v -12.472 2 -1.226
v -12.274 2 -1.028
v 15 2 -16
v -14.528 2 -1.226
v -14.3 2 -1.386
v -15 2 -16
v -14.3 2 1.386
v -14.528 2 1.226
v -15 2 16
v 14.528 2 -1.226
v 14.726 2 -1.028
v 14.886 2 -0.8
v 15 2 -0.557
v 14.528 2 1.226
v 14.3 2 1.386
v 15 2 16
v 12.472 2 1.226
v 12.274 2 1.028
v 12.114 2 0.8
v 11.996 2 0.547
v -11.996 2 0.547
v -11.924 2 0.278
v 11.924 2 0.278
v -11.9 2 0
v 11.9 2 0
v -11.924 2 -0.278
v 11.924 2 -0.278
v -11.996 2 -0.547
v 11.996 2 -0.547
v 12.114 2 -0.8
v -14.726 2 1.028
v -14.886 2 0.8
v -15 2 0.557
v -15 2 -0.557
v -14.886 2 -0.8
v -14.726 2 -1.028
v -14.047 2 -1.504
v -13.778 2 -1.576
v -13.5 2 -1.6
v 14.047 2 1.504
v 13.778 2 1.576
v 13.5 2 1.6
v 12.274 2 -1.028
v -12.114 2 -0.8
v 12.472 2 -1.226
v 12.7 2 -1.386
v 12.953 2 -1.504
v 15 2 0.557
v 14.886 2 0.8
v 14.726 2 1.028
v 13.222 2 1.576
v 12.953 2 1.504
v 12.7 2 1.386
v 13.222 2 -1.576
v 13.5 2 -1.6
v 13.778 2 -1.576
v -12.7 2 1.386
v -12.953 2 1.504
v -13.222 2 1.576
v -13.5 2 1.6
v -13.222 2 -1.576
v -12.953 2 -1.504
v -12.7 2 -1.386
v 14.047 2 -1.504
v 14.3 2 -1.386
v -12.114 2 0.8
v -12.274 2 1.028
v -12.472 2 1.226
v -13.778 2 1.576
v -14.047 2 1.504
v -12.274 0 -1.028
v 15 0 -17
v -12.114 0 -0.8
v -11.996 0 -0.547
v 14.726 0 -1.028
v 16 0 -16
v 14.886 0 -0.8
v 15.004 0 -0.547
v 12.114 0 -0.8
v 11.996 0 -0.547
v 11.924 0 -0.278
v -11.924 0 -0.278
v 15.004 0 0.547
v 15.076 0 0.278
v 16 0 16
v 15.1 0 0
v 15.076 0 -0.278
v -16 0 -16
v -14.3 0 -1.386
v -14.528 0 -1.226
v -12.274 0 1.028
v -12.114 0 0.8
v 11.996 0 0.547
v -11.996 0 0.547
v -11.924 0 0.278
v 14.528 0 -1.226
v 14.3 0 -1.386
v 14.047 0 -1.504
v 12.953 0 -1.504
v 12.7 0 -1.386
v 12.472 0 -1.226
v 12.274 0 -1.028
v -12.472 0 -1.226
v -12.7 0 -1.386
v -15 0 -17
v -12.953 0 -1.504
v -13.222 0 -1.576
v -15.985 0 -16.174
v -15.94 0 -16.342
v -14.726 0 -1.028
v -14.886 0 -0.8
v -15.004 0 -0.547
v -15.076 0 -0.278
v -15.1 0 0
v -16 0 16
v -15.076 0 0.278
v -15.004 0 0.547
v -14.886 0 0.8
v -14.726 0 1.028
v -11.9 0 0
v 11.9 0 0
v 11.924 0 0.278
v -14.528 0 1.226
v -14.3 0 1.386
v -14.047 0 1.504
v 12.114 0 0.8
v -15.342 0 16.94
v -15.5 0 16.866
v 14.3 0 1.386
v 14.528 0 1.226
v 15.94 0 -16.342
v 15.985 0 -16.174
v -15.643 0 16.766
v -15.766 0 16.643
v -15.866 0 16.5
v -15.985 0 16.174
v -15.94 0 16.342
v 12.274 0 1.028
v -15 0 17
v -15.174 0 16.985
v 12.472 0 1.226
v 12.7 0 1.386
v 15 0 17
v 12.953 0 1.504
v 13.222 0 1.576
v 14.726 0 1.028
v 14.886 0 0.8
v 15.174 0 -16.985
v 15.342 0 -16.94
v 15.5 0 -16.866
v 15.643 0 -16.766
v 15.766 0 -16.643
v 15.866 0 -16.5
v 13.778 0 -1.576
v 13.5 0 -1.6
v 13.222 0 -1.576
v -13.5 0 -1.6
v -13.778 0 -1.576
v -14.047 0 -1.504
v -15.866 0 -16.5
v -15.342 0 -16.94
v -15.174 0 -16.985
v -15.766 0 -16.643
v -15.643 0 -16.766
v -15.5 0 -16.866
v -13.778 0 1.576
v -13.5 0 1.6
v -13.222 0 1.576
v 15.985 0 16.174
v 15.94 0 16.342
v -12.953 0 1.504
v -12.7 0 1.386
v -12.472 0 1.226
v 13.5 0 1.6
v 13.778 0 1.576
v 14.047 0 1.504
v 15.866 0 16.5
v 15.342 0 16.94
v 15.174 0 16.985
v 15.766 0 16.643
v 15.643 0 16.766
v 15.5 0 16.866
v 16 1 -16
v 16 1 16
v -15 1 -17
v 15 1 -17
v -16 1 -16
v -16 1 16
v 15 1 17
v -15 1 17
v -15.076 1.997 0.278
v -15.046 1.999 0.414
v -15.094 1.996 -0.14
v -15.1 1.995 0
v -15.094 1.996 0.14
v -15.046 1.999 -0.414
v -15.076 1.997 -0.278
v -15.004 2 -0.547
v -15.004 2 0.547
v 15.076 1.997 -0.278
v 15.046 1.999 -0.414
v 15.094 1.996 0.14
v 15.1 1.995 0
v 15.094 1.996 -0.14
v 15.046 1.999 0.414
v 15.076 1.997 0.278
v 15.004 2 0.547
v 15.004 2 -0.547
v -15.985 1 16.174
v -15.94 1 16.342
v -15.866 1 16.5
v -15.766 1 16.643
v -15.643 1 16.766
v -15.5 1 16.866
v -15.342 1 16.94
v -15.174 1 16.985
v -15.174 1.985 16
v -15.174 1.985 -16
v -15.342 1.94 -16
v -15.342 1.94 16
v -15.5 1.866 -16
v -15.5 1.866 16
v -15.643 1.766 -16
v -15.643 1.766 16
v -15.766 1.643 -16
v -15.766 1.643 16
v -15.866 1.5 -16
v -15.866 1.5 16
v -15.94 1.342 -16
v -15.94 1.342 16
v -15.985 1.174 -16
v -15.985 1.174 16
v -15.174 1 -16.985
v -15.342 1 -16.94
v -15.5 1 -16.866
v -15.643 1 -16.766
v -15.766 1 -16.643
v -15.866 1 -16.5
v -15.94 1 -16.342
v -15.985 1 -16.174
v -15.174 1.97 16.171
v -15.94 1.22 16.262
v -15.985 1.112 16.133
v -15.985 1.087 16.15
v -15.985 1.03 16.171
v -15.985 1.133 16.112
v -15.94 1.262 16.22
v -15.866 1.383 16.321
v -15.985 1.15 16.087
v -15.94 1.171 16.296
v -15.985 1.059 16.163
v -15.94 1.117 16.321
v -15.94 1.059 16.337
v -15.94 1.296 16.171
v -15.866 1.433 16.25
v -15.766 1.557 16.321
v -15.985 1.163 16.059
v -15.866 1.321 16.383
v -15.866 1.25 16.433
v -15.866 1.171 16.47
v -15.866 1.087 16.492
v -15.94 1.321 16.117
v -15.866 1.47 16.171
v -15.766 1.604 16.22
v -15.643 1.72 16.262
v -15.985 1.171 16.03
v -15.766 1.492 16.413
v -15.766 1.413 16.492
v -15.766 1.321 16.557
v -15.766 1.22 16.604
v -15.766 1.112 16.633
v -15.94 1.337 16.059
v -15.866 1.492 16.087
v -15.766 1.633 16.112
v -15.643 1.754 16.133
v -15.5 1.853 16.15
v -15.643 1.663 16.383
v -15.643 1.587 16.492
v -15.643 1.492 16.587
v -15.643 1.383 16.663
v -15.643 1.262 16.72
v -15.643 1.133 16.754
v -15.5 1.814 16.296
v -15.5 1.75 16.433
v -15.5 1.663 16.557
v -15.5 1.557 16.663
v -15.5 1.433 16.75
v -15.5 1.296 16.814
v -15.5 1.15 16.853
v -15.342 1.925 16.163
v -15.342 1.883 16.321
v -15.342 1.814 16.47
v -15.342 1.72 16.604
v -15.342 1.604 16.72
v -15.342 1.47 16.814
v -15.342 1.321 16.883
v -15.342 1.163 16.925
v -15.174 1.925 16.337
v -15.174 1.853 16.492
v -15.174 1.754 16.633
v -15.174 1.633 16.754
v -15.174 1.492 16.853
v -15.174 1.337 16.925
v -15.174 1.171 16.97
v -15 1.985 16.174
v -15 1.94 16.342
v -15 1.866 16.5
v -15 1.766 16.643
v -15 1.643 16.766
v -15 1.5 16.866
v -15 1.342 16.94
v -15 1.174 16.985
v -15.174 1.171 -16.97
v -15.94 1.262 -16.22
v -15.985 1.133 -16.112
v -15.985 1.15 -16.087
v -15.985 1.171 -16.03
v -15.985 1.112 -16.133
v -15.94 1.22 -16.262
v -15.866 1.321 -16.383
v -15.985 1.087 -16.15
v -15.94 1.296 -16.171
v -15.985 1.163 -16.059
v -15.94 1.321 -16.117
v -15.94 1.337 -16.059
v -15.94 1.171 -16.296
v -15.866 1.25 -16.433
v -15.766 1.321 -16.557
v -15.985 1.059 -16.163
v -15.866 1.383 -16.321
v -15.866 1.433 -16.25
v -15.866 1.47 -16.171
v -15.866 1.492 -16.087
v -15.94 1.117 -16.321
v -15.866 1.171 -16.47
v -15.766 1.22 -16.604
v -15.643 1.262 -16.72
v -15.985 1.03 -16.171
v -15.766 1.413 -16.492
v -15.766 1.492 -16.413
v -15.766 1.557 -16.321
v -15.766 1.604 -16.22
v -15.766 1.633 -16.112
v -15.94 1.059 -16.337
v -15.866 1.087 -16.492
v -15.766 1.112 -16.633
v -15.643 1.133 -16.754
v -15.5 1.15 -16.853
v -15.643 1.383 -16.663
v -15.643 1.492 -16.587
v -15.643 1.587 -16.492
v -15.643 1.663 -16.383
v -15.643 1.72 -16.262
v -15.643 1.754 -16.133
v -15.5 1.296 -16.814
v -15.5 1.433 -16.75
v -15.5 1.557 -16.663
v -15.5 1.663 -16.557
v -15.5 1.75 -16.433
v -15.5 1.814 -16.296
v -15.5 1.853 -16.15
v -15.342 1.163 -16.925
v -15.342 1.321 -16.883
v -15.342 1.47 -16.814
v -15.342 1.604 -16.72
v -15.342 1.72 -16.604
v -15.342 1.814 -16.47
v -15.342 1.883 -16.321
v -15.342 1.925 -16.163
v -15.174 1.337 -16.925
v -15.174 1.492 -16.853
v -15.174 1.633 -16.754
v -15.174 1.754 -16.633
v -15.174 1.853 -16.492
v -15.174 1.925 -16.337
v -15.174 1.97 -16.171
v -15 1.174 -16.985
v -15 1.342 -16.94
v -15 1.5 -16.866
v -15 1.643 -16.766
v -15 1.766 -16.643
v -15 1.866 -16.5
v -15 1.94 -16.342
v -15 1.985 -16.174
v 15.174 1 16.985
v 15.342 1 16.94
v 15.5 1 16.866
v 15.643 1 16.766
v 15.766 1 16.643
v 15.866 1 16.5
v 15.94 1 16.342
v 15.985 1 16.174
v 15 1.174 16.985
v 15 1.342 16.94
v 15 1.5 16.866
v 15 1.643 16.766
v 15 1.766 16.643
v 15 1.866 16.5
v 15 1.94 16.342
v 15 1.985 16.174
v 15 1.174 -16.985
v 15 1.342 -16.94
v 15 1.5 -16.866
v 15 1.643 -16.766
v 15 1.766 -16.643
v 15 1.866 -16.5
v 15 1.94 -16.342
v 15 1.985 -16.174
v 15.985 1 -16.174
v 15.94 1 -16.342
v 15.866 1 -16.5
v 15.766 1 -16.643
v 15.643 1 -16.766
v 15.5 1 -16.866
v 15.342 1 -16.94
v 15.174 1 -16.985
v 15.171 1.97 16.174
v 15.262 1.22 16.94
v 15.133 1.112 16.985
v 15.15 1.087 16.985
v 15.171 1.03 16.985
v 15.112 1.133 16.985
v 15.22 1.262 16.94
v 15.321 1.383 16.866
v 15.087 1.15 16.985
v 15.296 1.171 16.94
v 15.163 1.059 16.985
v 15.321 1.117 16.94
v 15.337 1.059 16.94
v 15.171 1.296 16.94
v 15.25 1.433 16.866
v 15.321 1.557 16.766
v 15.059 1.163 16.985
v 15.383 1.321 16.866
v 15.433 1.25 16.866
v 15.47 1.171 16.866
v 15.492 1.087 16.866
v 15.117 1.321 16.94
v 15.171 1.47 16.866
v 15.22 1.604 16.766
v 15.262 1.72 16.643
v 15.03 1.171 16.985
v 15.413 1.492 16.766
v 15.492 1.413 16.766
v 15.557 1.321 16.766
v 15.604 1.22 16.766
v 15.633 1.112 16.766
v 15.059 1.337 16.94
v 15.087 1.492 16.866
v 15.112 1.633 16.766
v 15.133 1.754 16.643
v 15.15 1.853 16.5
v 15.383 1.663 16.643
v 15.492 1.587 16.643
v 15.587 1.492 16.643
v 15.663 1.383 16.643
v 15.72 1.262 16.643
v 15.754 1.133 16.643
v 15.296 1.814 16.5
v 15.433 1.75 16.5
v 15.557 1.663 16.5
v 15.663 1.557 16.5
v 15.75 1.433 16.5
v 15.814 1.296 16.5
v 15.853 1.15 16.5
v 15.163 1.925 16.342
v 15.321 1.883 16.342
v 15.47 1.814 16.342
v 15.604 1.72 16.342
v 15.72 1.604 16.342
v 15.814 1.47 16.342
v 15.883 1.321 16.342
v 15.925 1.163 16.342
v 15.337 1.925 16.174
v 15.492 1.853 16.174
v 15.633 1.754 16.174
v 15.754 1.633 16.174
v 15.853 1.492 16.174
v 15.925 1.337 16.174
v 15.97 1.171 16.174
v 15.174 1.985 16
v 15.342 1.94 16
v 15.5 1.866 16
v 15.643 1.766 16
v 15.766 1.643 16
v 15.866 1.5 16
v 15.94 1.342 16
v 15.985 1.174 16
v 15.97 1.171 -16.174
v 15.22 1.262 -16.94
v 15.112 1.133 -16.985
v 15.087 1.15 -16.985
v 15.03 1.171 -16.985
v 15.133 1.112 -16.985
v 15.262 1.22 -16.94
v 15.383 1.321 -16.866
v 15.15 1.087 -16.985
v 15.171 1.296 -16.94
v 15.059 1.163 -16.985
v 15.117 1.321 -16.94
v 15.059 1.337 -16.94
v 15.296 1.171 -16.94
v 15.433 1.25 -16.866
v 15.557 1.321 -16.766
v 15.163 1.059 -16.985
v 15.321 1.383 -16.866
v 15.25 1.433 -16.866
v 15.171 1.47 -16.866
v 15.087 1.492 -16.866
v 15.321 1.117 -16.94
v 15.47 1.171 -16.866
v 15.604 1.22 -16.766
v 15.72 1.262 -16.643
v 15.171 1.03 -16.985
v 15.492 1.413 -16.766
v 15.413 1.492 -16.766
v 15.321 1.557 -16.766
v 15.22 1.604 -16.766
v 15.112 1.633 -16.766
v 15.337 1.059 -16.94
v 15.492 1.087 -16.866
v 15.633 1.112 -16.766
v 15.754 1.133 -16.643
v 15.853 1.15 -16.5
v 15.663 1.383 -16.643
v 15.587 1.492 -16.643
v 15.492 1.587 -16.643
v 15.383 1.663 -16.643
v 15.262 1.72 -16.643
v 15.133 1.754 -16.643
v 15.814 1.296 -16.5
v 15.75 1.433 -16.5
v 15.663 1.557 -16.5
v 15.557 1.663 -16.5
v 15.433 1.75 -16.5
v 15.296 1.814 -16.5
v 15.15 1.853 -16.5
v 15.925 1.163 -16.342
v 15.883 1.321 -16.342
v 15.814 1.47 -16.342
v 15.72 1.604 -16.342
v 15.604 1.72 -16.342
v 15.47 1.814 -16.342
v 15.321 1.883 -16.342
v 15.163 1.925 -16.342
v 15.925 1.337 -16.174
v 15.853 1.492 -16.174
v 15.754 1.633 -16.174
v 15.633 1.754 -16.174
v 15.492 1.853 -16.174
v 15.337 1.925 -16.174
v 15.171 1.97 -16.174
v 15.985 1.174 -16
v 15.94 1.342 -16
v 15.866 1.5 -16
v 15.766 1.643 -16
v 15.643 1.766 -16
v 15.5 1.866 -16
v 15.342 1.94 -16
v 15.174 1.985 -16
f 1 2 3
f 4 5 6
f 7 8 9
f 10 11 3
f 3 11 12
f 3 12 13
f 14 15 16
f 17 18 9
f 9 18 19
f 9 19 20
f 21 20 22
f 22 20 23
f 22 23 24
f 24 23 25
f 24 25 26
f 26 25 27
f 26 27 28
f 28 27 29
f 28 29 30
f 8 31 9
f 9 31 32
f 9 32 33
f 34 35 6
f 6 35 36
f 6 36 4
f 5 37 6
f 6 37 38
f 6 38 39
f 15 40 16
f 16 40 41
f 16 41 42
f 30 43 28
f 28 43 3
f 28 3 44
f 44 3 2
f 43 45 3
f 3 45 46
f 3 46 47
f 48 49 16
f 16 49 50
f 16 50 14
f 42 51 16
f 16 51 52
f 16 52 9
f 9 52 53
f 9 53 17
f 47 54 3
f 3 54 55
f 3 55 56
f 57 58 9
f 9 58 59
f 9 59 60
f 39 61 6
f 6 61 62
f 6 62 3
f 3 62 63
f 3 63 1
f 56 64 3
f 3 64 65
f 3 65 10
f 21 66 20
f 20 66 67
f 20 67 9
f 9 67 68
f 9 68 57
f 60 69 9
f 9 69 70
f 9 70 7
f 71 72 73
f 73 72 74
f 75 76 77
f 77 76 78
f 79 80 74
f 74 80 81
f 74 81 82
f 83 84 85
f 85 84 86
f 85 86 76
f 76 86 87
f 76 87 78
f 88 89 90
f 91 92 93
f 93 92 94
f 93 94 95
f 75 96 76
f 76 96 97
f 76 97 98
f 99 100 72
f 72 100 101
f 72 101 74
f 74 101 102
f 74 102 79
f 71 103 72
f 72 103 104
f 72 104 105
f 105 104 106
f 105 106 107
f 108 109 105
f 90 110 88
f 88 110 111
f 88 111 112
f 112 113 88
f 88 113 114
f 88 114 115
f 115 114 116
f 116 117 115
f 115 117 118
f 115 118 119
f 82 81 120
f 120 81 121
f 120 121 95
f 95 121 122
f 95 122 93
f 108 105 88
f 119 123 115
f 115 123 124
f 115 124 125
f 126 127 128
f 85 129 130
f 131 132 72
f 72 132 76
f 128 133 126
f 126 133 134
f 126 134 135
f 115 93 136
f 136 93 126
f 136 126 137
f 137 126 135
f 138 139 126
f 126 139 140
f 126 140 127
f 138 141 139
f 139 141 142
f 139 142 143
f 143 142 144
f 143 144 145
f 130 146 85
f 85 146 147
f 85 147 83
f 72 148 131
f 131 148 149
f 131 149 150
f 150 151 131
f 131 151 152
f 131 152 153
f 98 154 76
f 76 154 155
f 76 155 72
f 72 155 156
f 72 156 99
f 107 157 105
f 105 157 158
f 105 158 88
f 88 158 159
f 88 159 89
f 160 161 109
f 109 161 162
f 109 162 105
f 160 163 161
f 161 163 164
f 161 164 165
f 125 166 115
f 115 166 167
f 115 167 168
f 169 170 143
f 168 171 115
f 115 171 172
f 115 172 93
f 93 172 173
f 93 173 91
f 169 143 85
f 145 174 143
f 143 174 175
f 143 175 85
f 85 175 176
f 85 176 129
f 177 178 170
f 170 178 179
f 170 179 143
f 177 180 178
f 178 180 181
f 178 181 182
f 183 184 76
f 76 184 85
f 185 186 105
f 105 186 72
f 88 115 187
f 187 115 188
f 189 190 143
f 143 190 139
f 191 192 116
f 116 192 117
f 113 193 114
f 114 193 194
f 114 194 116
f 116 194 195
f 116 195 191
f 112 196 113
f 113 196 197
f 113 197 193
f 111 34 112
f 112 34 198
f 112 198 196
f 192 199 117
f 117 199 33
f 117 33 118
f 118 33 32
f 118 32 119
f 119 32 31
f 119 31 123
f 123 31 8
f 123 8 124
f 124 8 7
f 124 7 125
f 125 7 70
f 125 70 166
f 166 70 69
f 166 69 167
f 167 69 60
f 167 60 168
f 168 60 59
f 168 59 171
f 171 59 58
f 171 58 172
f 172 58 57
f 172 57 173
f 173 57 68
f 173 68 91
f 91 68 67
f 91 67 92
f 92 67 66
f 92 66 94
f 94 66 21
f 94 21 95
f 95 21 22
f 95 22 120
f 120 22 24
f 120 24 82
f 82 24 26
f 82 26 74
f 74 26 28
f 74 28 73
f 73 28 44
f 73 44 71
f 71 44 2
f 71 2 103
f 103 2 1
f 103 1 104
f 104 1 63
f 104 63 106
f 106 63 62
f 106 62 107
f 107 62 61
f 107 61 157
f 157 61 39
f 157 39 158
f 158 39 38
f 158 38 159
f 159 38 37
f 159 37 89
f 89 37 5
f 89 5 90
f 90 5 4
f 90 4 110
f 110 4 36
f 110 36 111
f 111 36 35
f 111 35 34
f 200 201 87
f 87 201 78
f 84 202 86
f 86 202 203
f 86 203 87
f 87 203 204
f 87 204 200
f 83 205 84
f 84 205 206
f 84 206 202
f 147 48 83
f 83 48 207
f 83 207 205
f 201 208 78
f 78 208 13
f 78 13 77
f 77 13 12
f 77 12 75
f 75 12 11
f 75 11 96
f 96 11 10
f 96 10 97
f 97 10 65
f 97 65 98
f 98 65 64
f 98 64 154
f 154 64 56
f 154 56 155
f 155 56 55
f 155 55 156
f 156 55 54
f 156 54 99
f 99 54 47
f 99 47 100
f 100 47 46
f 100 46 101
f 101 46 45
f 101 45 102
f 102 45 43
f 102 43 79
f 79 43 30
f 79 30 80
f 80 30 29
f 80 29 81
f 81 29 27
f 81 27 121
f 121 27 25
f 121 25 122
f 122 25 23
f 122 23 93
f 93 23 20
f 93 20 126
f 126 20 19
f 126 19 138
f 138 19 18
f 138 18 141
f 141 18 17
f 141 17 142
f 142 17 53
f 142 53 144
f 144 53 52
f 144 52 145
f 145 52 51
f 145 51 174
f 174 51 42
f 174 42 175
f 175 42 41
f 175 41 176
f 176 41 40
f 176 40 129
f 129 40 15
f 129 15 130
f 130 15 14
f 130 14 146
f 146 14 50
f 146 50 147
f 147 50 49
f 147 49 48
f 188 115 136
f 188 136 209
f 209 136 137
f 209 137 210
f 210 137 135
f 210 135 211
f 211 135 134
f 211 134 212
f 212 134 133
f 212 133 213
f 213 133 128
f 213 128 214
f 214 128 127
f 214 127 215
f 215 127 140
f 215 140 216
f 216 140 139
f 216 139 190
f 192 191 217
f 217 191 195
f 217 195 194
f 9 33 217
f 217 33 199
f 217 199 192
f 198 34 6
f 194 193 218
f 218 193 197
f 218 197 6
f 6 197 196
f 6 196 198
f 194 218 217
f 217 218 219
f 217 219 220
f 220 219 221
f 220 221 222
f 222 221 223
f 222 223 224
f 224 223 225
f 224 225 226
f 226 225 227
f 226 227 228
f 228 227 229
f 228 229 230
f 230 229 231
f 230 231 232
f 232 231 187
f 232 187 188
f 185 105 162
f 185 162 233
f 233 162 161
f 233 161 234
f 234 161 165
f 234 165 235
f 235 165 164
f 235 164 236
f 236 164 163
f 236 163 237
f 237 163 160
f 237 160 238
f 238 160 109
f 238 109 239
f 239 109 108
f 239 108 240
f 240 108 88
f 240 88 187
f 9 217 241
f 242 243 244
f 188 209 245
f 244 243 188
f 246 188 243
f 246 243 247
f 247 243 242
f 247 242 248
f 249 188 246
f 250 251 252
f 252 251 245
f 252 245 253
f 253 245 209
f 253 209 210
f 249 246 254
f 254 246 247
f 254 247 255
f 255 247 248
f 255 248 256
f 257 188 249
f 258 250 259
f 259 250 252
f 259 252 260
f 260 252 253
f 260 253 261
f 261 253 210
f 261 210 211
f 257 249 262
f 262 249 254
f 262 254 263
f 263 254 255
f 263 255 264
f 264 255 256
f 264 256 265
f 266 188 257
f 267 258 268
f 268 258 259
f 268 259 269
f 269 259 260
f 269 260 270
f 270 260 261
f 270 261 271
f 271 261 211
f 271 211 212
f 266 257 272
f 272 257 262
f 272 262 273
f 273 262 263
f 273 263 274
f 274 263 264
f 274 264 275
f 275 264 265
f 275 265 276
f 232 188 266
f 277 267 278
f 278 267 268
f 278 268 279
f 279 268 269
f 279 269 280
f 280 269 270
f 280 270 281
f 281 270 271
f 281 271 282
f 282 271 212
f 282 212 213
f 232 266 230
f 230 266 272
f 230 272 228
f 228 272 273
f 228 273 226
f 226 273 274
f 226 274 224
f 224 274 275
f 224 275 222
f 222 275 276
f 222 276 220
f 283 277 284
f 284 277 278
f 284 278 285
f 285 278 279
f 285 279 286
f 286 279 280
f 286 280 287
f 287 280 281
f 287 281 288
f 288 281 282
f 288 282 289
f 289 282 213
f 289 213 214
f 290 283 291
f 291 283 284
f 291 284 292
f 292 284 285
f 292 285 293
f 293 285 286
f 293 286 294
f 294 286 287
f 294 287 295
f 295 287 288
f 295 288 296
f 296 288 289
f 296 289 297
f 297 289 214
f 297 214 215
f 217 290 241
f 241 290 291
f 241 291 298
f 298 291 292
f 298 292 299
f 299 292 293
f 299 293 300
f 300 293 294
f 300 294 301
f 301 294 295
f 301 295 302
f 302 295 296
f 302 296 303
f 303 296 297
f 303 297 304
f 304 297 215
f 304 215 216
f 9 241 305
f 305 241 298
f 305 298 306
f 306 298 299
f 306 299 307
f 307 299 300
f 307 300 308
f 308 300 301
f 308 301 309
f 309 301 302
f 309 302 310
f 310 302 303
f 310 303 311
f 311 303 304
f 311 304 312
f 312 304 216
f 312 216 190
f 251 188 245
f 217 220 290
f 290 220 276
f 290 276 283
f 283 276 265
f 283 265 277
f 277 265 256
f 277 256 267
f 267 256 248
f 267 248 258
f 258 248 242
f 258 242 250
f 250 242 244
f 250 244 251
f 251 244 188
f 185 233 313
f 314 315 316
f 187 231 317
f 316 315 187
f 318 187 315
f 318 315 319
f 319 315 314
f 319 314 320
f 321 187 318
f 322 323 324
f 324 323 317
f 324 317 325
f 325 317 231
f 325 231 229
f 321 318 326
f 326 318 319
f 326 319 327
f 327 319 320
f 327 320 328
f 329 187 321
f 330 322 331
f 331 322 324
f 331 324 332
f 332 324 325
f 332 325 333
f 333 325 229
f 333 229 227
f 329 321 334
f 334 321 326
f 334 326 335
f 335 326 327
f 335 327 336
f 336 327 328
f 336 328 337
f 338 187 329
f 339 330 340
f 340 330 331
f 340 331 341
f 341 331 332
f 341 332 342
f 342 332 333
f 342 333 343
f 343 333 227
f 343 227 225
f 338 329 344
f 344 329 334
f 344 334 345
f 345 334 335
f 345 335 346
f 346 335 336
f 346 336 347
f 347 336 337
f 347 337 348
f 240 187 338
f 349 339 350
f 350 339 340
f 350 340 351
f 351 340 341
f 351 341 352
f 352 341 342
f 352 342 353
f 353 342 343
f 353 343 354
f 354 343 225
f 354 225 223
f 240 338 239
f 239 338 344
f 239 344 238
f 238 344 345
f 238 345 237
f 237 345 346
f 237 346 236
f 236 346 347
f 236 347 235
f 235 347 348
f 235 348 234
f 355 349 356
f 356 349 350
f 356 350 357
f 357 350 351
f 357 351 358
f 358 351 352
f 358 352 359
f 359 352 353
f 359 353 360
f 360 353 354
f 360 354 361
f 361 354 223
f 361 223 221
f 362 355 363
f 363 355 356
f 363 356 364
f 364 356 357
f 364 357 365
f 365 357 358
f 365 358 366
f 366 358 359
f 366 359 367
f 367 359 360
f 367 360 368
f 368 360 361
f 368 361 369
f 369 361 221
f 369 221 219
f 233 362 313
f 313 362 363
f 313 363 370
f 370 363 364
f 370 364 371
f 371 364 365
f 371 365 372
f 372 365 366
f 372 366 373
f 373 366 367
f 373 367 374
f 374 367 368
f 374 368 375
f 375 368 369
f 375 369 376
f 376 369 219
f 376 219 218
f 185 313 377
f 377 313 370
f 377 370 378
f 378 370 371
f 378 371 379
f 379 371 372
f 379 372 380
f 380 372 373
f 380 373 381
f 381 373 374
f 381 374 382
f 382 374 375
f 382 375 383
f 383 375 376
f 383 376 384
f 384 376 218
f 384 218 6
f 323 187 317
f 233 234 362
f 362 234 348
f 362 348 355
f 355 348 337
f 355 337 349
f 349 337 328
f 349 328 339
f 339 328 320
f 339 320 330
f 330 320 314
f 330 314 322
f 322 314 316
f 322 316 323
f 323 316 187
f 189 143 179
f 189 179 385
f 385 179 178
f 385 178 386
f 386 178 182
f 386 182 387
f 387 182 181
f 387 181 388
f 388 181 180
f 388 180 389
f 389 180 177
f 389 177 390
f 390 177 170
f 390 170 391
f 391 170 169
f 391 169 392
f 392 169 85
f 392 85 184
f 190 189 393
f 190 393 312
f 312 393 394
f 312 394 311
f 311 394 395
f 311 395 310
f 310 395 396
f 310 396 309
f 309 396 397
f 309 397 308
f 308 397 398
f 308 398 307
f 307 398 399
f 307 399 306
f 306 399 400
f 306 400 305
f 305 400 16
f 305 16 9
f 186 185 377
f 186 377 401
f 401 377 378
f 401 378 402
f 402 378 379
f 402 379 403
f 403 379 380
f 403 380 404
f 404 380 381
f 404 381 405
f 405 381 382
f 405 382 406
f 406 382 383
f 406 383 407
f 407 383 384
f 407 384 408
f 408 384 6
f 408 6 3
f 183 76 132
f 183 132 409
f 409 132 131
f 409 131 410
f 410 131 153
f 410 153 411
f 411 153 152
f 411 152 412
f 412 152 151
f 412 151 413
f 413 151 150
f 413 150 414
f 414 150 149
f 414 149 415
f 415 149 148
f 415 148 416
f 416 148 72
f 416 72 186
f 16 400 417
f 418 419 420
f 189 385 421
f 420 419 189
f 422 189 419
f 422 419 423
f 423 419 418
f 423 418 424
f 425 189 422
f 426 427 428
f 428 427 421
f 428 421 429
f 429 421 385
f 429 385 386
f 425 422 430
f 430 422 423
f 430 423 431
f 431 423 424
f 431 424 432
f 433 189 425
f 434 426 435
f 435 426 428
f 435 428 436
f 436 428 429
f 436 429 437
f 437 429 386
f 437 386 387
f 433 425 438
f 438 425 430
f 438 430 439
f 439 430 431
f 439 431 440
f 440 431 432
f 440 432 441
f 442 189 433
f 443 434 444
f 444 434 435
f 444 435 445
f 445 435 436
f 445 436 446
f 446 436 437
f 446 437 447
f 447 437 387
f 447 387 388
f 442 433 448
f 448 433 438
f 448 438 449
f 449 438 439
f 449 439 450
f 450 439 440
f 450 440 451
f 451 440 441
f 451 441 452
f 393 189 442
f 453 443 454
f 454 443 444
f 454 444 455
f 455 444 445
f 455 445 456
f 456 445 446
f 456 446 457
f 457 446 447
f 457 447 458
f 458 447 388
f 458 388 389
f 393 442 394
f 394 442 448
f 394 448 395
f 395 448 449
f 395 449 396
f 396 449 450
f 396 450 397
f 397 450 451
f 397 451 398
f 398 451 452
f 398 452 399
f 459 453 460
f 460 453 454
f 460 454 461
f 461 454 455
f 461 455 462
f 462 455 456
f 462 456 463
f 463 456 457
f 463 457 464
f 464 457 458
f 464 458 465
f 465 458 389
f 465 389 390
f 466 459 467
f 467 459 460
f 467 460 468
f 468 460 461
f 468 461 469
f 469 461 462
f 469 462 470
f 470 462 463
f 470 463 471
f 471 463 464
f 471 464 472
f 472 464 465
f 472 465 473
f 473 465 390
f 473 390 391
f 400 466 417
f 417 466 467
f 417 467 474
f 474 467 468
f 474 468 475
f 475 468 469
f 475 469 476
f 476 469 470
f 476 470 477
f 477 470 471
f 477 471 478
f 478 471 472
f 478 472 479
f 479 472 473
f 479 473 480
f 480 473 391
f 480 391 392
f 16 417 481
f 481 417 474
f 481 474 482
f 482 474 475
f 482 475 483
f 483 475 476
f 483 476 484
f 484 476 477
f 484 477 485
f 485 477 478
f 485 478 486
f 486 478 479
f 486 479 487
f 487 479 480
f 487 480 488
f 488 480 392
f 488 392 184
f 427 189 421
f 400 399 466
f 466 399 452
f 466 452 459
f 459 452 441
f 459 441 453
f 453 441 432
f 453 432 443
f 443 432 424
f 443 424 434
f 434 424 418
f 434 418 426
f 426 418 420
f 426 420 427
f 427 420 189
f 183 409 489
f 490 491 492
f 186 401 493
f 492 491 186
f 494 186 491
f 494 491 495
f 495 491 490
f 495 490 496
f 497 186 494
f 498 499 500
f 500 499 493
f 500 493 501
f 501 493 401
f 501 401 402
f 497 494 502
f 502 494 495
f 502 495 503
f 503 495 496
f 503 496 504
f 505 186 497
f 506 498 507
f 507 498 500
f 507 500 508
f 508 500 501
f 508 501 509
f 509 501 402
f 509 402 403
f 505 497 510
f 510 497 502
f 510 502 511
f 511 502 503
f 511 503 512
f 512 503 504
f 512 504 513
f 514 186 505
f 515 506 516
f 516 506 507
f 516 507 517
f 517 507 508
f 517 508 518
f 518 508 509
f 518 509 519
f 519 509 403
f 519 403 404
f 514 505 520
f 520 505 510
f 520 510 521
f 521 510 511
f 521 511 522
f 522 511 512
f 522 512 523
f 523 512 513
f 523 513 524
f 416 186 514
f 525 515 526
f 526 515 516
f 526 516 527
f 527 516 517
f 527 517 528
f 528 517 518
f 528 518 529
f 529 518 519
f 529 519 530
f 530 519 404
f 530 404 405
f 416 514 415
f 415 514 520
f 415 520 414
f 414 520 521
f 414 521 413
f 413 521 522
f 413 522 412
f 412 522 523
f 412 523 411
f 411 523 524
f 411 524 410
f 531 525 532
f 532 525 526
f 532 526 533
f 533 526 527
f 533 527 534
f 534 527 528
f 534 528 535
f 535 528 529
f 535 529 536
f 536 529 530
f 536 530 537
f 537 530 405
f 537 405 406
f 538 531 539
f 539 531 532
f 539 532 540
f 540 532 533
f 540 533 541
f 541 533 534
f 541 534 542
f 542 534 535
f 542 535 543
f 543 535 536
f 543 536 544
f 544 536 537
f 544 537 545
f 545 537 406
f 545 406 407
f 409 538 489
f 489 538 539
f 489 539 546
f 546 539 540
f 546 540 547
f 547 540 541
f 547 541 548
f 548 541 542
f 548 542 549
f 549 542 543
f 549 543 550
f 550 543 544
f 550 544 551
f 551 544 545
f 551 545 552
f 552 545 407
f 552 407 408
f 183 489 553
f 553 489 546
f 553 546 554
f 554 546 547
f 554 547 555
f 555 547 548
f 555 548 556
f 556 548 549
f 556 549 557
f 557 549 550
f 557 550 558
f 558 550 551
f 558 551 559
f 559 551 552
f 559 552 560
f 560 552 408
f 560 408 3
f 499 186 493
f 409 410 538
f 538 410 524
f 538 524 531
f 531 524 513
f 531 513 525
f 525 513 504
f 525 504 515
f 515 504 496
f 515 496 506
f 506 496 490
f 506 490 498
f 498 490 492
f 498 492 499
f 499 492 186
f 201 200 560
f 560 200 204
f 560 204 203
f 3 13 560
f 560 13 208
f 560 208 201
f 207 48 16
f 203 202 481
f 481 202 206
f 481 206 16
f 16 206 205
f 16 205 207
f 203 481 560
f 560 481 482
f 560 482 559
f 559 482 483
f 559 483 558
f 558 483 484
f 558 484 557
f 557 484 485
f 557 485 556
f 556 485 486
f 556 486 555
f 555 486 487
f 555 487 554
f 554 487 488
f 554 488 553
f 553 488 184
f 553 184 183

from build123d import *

# Parameters (mm, degrees)
SKETCH2_W           = 32
SKETCH2_H           = 34
SKETCH2_R           = 1.6
BOSS_EXTRUDE1_DEPTH = 2
FILLET1_R           = 1


with BuildPart() as part:
    # Sketch2 → Boss-Extrude1 (new body)
    with BuildSketch(Plane(origin=(0, 0, 0), x_dir=(1, 0, 0), z_dir=(0, 1, 0))):
        Rectangle(SKETCH2_W, SKETCH2_H)
        with Locations(Location((-13.5, 0, 0), (0, 0, 270))):
            Circle(SKETCH2_R, mode=Mode.SUBTRACT)
        with Locations(Location((13.5, 0, 0), (0, 0, 90))):
            Circle(SKETCH2_R, mode=Mode.SUBTRACT)
    extrude(amount=BOSS_EXTRUDE1_DEPTH)

    # Fillet1
    # the kernel refuses this fillet: 1 mm, written as the material it takes off along each edge
    with BuildSketch(Plane(origin=(-15, 1, -16), x_dir=(-1, 0, 0), z_dir=(0, 0, -1))) as fillet1_piece_1_section:
        Polygon((0, 0), (FILLET1_R, 0), (FILLET1_R, FILLET1_R), (0, FILLET1_R), align=None)
    fillet1_piece_1 = extrude(amount=FILLET1_R, mode=Mode.PRIVATE)
    fillet1_piece_1 = fillet1_piece_1 - Plane(origin=(-15, 1, -16), x_dir=(0.7071067811865475, -0.7071067811865475, 0), z_dir=(0, 0, -1)) * Sphere(FILLET1_R, mode=Mode.PRIVATE)
    add(fillet1_piece_1, mode=Mode.SUBTRACT)
    with BuildSketch(Plane(origin=(-15, 1, 16), x_dir=(-1, 0, 0), z_dir=(0, 0, 1))) as fillet1_piece_2_section:
        Polygon((0, 0), (FILLET1_R, 0), (FILLET1_R, -FILLET1_R), (0, -FILLET1_R), align=None)
    fillet1_piece_2 = extrude(amount=FILLET1_R, mode=Mode.PRIVATE)
    fillet1_piece_2 = fillet1_piece_2 - Plane(origin=(-15, 1, 16), x_dir=(0.7071067811865475, -0.7071067811865475, 0), z_dir=(0, 0, 1)) * Sphere(FILLET1_R, mode=Mode.PRIVATE)
    add(fillet1_piece_2, mode=Mode.SUBTRACT)
    with BuildSketch(Plane(origin=(15, 1, 16), x_dir=(1, 0, 0), z_dir=(0, 0, 1))) as fillet1_piece_3_section:
        Polygon((0, 0), (FILLET1_R, 0), (FILLET1_R, FILLET1_R), (0, FILLET1_R), align=None)
    fillet1_piece_3 = extrude(amount=FILLET1_R, mode=Mode.PRIVATE)
    fillet1_piece_3 = fillet1_piece_3 - Plane(origin=(15, 1, 16), x_dir=(-0.7071067811865475, -0.7071067811865475, 0), z_dir=(0, 0, 1)) * Sphere(FILLET1_R, mode=Mode.PRIVATE)
    add(fillet1_piece_3, mode=Mode.SUBTRACT)
    with BuildSketch(Plane(origin=(15, 1, -16), x_dir=(0, 0, -1), z_dir=(1, 0, 0))) as fillet1_piece_4_section:
        Polygon((0, 0), (FILLET1_R, 0), (FILLET1_R, FILLET1_R), (0, FILLET1_R), align=None)
    fillet1_piece_4 = extrude(amount=FILLET1_R, mode=Mode.PRIVATE)
    fillet1_piece_4 = fillet1_piece_4 - Plane(origin=(15, 1, -16), x_dir=(0, -0.7071067811865475, 0.7071067811865475), z_dir=(1, 0, 0)) * Sphere(FILLET1_R, mode=Mode.PRIVATE)
    add(fillet1_piece_4, mode=Mode.SUBTRACT)
    with BuildSketch(Plane(origin=(-16, 2, -16), x_dir=(0, -1, 0), z_dir=(0, 0, 1)), Plane(origin=(16, 2, 16), x_dir=(0, -1, 0), z_dir=(0, 0, -1))) as fillet1_piece_5:
        with BuildLine():
            CenterArc((FILLET1_R, FILLET1_R), FILLET1_R, 180, 90)
            Line((0, FILLET1_R), (0, 0))
            Line((0, 0), (FILLET1_R, 0))
        make_face()
    extrude(amount=32, mode=Mode.SUBTRACT)
    with BuildSketch(Plane(origin=(-15, 2, 17), x_dir=(0, -1, 0), z_dir=(1, 0, 0)), Plane(origin=(15, 2, -17), x_dir=(0, -1, 0), z_dir=(-1, 0, 0))) as fillet1_piece_6:
        with BuildLine():
            CenterArc((FILLET1_R, FILLET1_R), FILLET1_R, 180, 90)
            Line((0, FILLET1_R), (0, 0))
            Line((0, 0), (FILLET1_R, 0))
        make_face()
    extrude(amount=30, mode=Mode.SUBTRACT)
    with BuildSketch(Plane(origin=(16, -2.5, 17), x_dir=(-1, 0, 0), z_dir=(0, 1, 0)), Plane(origin=(-16, -2.5, -17), x_dir=(1, 0, 0), z_dir=(0, 1, 0)), Plane(origin=(16, -2.5, -17), x_dir=(0, 0, 1), z_dir=(0, 1, 0))) as fillet1_piece_7:
        with BuildLine():
            CenterArc((FILLET1_R, -FILLET1_R), FILLET1_R, 90, 90)
            Line((0, -FILLET1_R), (0, 0))
            Line((0, 0), (FILLET1_R, 0))
        make_face()
    extrude(amount=3.5, mode=Mode.SUBTRACT)
    with BuildSketch(Plane(origin=(-16, -2.5, 17), x_dir=(1, 0, 0), z_dir=(0, 1, 0))) as fillet1_piece_8:
        with BuildLine():
            CenterArc((FILLET1_R, FILLET1_R), FILLET1_R, 180, 90)
            Line((0, FILLET1_R), (0, 0))
            Line((0, 0), (FILLET1_R, 0))
        make_face()
    extrude(amount=3.5, mode=Mode.SUBTRACT)


solid = part.part
